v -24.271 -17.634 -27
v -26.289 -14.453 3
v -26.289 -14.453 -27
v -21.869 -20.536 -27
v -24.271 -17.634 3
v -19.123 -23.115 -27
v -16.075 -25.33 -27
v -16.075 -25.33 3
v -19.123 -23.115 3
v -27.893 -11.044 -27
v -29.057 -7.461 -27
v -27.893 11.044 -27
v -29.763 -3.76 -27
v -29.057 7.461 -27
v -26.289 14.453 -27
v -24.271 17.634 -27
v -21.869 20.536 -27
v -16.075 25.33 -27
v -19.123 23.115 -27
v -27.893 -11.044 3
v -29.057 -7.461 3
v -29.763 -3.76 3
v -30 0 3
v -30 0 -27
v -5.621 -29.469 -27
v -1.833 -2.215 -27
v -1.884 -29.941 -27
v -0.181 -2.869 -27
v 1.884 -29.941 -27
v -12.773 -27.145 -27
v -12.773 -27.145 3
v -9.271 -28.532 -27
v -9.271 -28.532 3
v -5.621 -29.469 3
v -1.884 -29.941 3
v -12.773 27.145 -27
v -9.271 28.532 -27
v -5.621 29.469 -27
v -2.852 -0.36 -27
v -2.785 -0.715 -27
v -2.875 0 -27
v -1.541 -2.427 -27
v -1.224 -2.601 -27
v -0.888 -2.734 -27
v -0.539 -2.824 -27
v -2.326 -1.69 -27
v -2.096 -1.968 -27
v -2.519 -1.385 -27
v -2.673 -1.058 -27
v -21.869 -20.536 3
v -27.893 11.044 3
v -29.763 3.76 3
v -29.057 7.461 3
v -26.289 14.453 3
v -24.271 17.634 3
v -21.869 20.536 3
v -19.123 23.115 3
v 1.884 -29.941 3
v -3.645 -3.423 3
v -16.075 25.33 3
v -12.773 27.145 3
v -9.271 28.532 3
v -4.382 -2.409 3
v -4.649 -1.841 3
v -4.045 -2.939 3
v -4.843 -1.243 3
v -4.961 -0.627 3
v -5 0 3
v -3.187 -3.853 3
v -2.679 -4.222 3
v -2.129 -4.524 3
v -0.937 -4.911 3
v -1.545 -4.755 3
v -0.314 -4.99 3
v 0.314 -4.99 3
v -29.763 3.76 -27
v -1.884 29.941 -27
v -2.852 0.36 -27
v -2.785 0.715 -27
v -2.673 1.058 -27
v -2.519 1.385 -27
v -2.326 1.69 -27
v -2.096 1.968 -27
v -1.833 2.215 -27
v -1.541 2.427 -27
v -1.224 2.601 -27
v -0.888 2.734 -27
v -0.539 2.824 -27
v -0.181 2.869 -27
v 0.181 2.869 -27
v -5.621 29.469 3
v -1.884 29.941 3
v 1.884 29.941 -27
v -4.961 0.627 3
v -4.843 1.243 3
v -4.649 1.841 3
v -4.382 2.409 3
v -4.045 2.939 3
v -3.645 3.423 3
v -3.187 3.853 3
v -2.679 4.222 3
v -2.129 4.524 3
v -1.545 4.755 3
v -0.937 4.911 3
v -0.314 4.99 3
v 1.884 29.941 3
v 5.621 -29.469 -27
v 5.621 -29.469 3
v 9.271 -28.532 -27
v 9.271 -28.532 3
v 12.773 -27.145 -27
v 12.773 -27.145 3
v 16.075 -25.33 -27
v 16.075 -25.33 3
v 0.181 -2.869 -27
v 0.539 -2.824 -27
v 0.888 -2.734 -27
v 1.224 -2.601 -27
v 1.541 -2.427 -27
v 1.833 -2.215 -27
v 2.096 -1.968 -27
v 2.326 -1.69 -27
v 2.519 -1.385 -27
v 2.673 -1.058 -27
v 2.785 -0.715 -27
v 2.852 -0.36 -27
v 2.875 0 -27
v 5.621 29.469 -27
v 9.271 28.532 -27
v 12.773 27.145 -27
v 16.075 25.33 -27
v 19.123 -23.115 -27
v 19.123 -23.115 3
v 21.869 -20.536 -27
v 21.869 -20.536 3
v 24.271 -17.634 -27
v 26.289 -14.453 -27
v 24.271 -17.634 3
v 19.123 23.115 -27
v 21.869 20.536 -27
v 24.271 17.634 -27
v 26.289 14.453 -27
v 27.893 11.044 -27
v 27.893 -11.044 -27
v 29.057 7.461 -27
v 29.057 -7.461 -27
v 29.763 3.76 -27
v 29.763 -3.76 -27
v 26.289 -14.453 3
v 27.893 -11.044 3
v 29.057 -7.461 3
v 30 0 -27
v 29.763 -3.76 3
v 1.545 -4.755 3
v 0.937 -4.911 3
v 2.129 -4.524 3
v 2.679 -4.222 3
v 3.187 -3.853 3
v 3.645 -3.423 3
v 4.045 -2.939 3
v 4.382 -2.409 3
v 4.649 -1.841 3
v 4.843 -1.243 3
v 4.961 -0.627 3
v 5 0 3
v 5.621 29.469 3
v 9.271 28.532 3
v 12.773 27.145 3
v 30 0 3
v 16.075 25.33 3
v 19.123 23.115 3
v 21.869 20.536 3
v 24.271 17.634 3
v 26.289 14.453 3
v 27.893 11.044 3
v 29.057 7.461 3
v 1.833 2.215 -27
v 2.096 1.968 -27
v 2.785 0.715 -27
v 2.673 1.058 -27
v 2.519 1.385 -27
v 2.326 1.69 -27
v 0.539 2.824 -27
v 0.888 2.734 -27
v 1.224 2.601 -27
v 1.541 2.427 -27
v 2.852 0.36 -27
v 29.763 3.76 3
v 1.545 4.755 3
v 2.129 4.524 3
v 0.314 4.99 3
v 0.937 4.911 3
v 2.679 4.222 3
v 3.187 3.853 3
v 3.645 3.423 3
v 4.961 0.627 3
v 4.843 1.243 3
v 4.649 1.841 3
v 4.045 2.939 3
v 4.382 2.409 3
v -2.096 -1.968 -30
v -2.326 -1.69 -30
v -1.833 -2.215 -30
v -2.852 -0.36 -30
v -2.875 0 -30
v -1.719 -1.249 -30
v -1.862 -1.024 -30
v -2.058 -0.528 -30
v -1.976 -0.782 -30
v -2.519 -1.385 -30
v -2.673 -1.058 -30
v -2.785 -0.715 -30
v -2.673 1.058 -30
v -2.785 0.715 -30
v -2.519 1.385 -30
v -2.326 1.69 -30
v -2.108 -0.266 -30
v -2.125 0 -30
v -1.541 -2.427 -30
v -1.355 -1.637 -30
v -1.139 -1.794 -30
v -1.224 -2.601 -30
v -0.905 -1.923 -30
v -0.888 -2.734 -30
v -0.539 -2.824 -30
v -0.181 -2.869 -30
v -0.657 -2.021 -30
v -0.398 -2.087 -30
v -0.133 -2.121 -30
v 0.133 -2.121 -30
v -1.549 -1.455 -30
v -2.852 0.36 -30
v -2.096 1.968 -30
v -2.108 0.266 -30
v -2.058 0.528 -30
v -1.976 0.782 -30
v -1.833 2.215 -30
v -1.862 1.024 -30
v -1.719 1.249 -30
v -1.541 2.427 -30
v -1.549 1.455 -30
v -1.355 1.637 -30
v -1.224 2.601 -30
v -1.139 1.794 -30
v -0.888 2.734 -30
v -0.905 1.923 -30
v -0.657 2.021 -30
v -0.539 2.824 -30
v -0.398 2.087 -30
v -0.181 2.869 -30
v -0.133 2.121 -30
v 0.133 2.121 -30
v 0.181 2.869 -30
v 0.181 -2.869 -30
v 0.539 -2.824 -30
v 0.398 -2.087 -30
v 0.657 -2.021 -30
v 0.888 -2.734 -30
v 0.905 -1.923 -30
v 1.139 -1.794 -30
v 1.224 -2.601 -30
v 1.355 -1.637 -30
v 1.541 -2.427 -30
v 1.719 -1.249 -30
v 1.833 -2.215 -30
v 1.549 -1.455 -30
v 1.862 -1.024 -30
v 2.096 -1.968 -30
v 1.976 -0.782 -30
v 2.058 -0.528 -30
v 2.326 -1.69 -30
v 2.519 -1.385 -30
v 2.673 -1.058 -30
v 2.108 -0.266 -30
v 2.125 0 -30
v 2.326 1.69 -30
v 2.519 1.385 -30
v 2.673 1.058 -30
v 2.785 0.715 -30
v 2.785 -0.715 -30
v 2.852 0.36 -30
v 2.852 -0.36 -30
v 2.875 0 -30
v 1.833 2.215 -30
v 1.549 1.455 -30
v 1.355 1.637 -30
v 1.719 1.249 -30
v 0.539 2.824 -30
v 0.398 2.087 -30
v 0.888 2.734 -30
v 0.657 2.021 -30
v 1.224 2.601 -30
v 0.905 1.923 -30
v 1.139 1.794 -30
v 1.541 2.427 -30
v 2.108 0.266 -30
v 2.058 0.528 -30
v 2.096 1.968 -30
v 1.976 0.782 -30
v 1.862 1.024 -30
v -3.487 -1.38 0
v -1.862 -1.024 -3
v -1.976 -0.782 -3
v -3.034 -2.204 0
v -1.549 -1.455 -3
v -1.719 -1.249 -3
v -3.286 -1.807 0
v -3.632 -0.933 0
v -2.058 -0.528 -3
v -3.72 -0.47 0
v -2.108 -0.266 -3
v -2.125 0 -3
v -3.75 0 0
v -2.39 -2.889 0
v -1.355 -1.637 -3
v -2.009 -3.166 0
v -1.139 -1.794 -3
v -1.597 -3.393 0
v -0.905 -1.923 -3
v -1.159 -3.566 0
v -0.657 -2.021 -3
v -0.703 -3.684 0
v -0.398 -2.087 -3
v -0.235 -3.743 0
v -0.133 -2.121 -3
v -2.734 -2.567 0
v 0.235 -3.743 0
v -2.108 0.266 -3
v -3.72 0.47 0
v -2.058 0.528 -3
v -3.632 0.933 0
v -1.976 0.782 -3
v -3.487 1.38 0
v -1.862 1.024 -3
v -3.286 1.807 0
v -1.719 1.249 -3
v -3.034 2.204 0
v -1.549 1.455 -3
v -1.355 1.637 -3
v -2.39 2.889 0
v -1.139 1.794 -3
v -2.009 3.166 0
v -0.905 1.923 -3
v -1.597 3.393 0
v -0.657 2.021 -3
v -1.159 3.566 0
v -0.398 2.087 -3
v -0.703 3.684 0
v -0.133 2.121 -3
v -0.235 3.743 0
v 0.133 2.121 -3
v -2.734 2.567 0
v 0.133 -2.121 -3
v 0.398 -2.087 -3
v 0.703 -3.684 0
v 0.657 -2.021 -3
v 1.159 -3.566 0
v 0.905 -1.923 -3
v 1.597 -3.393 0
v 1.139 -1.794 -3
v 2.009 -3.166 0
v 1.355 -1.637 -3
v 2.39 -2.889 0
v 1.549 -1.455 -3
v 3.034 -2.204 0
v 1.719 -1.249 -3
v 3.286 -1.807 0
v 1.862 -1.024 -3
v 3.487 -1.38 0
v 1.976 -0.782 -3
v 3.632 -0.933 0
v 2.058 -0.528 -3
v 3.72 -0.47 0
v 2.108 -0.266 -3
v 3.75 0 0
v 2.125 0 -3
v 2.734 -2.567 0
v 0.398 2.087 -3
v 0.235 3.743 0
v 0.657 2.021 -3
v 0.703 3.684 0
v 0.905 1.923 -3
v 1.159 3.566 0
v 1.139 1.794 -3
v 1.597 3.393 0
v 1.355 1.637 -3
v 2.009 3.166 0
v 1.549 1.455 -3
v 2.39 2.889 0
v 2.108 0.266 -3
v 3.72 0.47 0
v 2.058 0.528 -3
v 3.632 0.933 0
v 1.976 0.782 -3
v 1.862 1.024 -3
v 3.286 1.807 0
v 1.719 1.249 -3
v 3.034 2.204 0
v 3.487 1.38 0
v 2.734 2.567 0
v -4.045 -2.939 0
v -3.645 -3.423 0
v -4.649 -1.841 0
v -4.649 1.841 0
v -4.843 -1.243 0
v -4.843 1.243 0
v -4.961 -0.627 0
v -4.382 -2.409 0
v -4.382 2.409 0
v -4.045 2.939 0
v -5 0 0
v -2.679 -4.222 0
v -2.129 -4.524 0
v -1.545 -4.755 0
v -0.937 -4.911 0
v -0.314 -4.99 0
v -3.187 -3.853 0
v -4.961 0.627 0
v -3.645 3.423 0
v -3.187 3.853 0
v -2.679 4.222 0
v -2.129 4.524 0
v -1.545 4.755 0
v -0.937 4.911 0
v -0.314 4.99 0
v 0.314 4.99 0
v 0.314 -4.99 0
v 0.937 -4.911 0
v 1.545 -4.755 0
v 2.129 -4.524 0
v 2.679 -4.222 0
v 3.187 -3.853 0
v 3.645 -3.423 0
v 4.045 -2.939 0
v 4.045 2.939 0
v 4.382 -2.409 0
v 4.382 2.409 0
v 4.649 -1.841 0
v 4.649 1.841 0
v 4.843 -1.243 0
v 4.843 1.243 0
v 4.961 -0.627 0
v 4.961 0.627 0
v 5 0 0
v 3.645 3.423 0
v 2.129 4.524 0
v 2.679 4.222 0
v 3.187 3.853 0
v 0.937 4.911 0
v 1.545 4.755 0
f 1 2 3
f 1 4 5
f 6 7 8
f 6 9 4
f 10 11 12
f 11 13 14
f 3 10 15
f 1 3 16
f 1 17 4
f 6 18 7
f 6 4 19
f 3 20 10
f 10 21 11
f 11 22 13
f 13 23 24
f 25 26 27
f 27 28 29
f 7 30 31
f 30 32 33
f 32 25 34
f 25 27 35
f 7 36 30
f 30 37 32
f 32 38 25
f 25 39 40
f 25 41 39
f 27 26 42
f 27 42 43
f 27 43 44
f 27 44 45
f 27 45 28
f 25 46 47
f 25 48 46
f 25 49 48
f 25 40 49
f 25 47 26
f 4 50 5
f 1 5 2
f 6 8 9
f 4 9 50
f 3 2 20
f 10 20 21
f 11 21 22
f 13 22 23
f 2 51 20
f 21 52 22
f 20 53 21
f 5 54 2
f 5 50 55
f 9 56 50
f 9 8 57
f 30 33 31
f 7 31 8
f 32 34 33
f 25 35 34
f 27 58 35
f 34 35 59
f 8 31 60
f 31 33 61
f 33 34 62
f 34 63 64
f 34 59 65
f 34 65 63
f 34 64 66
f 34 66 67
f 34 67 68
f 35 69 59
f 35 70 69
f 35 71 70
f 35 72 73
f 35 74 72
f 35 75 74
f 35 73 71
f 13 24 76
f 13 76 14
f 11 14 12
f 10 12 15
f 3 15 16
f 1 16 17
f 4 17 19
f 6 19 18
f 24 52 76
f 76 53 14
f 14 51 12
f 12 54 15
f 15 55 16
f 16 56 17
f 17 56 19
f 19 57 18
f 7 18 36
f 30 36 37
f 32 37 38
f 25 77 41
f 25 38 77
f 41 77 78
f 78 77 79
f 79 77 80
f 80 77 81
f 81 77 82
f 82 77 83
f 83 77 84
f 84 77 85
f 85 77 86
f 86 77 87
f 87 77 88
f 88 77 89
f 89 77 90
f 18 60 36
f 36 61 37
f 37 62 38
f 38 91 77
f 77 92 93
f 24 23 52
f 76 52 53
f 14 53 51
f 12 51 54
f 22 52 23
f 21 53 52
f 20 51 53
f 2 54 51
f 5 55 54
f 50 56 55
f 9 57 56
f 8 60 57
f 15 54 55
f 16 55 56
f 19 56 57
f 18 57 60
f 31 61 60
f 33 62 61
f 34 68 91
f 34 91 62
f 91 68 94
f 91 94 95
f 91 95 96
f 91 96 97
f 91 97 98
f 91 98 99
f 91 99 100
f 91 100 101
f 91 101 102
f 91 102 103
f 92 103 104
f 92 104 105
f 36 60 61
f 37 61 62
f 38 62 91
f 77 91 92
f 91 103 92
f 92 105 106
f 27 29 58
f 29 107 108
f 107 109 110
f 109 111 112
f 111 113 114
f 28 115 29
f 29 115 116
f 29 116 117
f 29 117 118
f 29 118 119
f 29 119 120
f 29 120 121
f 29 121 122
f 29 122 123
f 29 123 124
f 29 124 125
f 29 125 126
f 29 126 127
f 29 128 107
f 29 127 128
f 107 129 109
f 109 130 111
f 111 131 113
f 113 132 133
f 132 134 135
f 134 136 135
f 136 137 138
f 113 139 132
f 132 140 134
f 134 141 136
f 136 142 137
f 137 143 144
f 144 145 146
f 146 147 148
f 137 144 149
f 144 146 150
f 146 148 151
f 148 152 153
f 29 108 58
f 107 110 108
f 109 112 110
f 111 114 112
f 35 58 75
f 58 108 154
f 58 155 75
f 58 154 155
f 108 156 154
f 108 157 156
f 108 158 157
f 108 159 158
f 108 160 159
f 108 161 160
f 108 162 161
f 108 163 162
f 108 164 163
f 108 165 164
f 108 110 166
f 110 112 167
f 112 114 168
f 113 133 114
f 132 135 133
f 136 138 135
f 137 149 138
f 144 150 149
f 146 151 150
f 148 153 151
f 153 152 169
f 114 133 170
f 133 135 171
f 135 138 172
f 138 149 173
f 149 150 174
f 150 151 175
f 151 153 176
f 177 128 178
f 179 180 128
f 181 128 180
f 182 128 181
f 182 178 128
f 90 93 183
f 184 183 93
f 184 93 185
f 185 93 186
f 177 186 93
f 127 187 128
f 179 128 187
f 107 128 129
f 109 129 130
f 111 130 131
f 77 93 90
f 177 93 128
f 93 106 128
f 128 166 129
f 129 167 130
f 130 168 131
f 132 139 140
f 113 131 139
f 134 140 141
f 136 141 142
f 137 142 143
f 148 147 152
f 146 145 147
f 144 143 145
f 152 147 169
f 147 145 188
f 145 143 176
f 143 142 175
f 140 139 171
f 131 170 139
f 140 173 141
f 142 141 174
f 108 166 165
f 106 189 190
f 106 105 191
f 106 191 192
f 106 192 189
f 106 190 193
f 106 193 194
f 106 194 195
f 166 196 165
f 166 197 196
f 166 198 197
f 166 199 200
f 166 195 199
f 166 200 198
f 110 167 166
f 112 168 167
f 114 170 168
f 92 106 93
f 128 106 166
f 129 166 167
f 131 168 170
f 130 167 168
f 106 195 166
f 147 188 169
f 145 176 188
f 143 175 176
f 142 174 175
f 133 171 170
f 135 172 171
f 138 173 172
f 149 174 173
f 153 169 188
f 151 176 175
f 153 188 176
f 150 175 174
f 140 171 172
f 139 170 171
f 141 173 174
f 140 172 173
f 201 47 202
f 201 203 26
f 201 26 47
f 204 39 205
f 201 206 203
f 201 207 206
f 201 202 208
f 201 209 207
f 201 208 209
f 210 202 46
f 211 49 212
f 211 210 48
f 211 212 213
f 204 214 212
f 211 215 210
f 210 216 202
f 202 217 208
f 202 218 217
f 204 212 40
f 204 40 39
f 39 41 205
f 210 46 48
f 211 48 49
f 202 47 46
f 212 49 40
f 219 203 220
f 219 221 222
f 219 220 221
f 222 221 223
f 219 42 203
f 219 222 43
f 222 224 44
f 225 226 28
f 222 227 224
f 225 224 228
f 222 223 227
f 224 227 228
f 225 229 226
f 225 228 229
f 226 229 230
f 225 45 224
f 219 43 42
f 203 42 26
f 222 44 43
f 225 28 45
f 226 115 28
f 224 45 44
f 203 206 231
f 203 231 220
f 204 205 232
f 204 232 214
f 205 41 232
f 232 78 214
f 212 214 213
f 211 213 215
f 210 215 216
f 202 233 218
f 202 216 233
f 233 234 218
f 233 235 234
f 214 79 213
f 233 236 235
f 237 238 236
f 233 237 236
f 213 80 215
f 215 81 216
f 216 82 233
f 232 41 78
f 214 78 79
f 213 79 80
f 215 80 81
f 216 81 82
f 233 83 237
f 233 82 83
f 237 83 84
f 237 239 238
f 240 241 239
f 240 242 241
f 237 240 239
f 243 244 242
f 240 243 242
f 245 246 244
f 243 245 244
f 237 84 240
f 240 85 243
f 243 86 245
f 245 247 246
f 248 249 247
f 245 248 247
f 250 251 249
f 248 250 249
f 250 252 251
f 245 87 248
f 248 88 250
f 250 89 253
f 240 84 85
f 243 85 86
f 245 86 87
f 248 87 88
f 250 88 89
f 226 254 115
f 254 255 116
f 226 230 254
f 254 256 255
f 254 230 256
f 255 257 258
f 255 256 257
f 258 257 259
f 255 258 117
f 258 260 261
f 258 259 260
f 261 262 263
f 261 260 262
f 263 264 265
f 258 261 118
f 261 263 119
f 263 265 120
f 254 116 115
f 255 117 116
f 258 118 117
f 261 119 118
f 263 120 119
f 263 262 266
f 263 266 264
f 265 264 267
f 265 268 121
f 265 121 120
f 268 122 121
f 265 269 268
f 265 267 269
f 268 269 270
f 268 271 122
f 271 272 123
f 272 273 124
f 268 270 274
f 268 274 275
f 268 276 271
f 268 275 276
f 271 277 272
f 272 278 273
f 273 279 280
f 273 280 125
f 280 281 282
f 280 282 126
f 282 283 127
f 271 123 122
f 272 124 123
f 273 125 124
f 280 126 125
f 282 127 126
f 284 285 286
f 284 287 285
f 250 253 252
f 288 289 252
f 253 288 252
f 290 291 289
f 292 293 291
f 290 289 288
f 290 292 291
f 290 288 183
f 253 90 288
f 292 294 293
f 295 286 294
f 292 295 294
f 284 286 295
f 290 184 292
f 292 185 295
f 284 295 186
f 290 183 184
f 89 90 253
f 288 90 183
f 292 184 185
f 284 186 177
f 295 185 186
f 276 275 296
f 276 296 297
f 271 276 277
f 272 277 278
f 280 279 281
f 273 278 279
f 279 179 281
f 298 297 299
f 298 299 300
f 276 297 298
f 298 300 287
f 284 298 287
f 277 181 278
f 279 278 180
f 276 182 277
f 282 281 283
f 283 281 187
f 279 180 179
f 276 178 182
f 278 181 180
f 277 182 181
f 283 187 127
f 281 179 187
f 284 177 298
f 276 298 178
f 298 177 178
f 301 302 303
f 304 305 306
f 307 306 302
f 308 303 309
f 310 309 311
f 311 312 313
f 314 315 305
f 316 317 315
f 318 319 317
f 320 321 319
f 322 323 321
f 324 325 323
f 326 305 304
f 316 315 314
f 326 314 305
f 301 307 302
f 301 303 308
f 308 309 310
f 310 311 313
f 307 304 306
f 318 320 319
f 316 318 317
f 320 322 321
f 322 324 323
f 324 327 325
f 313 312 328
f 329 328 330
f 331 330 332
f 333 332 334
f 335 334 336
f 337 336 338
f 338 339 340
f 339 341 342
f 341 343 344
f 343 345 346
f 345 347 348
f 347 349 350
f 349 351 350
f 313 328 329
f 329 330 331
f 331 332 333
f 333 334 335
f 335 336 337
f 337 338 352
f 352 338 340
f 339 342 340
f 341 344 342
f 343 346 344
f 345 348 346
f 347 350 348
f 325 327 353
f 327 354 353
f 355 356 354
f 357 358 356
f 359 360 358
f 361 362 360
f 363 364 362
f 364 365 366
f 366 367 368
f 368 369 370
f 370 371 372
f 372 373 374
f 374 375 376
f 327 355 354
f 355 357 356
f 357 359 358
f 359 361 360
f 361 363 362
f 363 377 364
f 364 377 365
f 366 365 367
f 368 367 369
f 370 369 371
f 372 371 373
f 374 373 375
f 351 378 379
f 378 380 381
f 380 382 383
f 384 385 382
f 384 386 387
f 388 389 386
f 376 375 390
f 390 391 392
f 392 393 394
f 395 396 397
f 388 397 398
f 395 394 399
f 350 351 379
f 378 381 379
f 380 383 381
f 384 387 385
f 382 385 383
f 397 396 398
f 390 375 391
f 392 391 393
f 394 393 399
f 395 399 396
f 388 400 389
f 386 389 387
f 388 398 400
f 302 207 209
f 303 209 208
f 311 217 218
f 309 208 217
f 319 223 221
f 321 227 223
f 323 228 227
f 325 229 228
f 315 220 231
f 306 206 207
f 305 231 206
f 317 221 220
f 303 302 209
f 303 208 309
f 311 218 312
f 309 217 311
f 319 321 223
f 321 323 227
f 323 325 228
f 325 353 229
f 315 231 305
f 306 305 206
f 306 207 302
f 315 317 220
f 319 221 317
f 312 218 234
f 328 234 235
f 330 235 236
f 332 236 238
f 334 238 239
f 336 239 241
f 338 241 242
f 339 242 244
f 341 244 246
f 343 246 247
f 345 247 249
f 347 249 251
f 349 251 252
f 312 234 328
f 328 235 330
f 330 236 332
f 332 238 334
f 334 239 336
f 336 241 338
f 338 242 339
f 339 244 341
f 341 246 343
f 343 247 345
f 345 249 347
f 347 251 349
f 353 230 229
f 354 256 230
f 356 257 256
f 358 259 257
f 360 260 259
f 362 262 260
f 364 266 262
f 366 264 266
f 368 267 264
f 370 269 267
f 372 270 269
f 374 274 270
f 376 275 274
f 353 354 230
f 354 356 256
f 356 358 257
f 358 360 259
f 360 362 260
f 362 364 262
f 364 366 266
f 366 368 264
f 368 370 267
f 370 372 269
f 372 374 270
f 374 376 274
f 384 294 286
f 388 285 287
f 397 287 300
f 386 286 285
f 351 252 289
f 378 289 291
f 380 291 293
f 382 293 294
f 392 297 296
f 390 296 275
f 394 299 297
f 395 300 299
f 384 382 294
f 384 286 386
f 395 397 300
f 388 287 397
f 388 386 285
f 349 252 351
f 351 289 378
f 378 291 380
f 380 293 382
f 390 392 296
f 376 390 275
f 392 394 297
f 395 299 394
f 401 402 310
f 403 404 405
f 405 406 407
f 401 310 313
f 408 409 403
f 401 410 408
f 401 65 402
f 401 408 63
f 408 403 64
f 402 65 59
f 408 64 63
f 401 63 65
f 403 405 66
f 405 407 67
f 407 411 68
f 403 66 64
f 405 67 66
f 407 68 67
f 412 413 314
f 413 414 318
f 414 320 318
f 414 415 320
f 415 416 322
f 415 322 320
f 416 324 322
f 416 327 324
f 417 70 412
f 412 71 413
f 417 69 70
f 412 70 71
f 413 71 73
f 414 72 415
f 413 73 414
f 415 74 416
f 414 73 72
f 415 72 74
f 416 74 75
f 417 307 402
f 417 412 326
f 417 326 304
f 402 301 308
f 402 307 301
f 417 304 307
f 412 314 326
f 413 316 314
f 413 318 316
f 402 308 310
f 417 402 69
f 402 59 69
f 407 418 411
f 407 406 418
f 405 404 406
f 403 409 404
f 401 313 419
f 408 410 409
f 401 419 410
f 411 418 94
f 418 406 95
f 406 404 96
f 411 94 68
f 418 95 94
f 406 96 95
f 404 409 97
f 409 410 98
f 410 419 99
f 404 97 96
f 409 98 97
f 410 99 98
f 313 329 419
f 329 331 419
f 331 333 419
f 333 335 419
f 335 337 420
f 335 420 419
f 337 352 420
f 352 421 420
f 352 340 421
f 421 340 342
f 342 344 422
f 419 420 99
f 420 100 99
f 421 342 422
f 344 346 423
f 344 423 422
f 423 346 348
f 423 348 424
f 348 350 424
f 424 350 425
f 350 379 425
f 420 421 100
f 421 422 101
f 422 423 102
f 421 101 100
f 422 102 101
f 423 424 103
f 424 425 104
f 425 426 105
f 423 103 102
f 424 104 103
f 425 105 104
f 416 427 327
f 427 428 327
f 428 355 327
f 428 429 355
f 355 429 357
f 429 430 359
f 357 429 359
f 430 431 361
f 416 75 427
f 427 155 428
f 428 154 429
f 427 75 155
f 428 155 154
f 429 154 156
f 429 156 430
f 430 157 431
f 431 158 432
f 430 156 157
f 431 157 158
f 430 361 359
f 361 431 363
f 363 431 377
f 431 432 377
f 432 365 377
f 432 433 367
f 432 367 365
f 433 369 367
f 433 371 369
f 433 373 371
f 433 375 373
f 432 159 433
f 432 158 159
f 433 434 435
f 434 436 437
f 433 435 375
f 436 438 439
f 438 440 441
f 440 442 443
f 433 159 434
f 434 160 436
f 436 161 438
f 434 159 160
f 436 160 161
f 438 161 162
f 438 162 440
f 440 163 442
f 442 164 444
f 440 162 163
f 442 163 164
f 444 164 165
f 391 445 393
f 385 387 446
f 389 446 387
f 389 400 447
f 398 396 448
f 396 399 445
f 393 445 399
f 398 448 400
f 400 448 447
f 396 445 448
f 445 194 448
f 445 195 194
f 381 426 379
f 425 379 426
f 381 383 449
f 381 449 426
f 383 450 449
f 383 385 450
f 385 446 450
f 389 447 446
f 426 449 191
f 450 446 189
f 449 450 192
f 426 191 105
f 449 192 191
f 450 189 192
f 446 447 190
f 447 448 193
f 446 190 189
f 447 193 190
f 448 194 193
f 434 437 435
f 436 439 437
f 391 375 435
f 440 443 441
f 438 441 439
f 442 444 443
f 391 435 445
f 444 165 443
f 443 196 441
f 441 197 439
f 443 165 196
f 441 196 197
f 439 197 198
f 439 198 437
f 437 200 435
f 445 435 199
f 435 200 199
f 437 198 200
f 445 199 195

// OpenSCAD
$fn = 50;


difference() {
	union() {
		translate(v = [0, 0, -27.0000000000]) {
			cylinder(h = 30, r = 30.0000000000);
		}
		#translate(v = [0, 0, -30.0000000000]) {
			cylinder(h = 30, r = 2.8750000000);
		}
	}
	union() {
		translate(v = [0, 0, 0]) {
			rotate(a = [0, 0, 0]) {
				difference() {
					union() {
						translate(v = [0, 0, -30.0000000000]) {
							cylinder(h = 30, r = 2.0000000000);
						}
						translate(v = [0, 0, -3]) {
							cylinder(h = 3, r1 = 2.1250000000, r2 = 3.7500000000);
						}
						translate(v = [0, 0, -30.0000000000]) {
							cylinder(h = 30, r = 2.1250000000);
						}
						translate(v = [0, 0, -30.0000000000]) {
							cylinder(h = 30, r = 2.0000000000);
						}
					}
					union();
				}
			}
		}
		#cylinder(h = 3, r = 5.0000000000);
	}
}
